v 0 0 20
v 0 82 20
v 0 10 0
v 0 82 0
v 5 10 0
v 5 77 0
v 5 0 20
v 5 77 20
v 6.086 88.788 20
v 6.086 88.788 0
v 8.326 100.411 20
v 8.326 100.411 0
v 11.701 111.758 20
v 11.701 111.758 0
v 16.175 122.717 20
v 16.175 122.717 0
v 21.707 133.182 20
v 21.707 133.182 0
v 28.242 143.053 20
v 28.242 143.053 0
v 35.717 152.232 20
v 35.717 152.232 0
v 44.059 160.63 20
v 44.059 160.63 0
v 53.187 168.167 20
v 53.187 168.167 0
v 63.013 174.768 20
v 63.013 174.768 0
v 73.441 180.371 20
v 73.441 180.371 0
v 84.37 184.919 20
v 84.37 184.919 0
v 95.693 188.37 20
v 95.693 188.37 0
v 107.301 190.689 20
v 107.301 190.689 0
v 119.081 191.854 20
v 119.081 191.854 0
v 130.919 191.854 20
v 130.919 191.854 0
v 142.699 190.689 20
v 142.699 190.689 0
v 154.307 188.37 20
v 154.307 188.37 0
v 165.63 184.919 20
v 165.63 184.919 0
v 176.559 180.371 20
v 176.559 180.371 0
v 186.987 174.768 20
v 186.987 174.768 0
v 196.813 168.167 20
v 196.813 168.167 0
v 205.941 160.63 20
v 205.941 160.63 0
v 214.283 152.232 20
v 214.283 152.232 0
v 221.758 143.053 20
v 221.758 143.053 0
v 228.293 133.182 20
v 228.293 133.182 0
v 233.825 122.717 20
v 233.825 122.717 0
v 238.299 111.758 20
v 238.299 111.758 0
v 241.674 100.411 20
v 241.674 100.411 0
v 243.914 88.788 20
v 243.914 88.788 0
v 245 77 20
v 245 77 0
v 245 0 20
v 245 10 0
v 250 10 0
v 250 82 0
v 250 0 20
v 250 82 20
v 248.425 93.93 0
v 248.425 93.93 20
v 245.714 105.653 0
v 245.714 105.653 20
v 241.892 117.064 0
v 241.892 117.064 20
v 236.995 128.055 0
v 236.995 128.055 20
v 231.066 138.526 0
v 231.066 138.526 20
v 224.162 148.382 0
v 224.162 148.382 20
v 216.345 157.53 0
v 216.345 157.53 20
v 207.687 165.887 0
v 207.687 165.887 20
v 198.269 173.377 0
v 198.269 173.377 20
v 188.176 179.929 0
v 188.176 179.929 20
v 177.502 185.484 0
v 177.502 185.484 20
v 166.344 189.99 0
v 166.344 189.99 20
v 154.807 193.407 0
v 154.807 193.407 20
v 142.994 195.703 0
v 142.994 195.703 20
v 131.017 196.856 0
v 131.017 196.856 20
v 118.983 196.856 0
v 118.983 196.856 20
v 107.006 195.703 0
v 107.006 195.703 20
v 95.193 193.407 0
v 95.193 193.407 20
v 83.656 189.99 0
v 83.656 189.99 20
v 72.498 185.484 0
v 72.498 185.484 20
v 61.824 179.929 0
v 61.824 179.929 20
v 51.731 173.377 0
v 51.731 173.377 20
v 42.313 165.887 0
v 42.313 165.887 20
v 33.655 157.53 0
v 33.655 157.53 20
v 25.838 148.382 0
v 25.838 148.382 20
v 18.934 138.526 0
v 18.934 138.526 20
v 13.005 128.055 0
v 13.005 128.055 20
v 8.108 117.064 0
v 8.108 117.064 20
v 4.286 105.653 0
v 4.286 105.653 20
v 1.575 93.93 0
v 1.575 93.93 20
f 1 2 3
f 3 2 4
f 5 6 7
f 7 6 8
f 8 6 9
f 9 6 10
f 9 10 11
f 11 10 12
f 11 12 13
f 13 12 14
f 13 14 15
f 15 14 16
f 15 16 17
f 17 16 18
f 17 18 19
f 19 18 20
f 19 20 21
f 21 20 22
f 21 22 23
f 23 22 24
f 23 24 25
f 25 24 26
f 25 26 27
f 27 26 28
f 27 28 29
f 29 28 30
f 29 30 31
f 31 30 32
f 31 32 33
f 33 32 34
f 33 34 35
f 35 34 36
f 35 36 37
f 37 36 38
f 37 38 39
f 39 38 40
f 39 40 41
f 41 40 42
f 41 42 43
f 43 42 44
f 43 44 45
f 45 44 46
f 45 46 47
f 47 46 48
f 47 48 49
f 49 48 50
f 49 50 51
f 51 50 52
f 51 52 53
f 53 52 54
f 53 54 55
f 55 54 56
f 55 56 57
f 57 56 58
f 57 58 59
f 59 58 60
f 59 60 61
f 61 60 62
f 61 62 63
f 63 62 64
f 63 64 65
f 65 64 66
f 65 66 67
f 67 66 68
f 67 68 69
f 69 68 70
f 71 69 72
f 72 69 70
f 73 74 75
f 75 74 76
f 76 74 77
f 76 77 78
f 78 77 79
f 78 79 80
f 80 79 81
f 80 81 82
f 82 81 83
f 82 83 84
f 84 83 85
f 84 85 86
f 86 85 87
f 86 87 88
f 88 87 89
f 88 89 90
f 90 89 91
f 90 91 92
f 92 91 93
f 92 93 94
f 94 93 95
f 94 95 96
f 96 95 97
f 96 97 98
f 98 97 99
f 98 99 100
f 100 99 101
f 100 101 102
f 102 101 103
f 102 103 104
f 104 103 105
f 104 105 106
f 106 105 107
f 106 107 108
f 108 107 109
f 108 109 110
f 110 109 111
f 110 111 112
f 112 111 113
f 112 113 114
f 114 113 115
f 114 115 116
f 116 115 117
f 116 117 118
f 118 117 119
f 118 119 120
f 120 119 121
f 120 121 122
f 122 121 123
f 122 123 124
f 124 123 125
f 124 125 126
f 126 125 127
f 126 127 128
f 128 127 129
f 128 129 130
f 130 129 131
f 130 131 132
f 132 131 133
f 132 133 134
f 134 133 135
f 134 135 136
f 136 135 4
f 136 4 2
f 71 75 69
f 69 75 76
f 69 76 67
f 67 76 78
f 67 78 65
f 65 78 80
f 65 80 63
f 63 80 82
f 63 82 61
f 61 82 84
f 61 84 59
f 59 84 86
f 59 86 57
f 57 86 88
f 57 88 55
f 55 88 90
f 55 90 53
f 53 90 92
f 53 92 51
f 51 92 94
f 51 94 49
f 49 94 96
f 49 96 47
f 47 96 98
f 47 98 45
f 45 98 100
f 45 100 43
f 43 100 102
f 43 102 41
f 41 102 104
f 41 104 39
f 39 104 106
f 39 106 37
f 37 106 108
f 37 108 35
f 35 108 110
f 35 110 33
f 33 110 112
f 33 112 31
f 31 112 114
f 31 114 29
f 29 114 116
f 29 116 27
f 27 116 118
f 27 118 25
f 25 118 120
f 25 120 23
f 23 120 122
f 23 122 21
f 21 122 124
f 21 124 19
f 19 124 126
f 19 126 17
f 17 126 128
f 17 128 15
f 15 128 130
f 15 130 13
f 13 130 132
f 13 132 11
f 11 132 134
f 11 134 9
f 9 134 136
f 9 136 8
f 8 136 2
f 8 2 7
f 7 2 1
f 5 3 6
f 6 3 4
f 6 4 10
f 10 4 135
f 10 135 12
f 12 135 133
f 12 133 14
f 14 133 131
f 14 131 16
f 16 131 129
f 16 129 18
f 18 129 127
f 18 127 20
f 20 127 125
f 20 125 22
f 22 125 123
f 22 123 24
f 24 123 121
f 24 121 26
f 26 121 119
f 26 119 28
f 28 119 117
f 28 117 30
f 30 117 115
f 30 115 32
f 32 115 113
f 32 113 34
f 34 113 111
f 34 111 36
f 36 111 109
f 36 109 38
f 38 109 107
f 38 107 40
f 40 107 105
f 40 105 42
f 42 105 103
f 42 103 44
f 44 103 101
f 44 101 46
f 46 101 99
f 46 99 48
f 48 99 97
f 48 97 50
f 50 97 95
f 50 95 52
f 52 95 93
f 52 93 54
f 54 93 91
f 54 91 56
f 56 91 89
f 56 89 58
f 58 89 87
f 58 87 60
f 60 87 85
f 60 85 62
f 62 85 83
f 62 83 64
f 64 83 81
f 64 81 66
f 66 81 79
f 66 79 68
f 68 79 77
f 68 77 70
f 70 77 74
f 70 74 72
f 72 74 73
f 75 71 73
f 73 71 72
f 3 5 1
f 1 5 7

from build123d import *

# Parameters (mm, degrees)
BOSS_EXTRU_1_DEPTH      = 20
ENL_V_MAT_EXTRU_1_DEPTH = 319.918484883


with BuildPart() as part:
    # Esquisse1 → Boss.-Extru.1 (new body)
    with BuildSketch(Plane.XY):
        with BuildLine():
            Line((5, 0), (5, 77))
            ThreePointArc((5, 77), (125, 192), (245, 77))
            Line((245, 77), (245, 0))
            Line((245, 0), (250, 0))
            Line((250, 0), (250, 82))
            ThreePointArc((250, 82), (125, 197), (0, 82))
            Line((0, 82), (0, 0))
            Line((0, 0), (5, 0))
        make_face()
    extrude(amount=BOSS_EXTRU_1_DEPTH)

    # Esquisse2 → Enlèv. mat.-Extru.1 (cut, through all)
    with BuildSketch(Plane(origin=(250, 0, 0), x_dir=(0, 0, -1), z_dir=(1, 0, 0))):
        Polygon((-20, 0), (0, 0), (0, 10), align=None)
    extrude(amount=-ENL_V_MAT_EXTRU_1_DEPTH, mode=Mode.SUBTRACT)


solid = part.part
